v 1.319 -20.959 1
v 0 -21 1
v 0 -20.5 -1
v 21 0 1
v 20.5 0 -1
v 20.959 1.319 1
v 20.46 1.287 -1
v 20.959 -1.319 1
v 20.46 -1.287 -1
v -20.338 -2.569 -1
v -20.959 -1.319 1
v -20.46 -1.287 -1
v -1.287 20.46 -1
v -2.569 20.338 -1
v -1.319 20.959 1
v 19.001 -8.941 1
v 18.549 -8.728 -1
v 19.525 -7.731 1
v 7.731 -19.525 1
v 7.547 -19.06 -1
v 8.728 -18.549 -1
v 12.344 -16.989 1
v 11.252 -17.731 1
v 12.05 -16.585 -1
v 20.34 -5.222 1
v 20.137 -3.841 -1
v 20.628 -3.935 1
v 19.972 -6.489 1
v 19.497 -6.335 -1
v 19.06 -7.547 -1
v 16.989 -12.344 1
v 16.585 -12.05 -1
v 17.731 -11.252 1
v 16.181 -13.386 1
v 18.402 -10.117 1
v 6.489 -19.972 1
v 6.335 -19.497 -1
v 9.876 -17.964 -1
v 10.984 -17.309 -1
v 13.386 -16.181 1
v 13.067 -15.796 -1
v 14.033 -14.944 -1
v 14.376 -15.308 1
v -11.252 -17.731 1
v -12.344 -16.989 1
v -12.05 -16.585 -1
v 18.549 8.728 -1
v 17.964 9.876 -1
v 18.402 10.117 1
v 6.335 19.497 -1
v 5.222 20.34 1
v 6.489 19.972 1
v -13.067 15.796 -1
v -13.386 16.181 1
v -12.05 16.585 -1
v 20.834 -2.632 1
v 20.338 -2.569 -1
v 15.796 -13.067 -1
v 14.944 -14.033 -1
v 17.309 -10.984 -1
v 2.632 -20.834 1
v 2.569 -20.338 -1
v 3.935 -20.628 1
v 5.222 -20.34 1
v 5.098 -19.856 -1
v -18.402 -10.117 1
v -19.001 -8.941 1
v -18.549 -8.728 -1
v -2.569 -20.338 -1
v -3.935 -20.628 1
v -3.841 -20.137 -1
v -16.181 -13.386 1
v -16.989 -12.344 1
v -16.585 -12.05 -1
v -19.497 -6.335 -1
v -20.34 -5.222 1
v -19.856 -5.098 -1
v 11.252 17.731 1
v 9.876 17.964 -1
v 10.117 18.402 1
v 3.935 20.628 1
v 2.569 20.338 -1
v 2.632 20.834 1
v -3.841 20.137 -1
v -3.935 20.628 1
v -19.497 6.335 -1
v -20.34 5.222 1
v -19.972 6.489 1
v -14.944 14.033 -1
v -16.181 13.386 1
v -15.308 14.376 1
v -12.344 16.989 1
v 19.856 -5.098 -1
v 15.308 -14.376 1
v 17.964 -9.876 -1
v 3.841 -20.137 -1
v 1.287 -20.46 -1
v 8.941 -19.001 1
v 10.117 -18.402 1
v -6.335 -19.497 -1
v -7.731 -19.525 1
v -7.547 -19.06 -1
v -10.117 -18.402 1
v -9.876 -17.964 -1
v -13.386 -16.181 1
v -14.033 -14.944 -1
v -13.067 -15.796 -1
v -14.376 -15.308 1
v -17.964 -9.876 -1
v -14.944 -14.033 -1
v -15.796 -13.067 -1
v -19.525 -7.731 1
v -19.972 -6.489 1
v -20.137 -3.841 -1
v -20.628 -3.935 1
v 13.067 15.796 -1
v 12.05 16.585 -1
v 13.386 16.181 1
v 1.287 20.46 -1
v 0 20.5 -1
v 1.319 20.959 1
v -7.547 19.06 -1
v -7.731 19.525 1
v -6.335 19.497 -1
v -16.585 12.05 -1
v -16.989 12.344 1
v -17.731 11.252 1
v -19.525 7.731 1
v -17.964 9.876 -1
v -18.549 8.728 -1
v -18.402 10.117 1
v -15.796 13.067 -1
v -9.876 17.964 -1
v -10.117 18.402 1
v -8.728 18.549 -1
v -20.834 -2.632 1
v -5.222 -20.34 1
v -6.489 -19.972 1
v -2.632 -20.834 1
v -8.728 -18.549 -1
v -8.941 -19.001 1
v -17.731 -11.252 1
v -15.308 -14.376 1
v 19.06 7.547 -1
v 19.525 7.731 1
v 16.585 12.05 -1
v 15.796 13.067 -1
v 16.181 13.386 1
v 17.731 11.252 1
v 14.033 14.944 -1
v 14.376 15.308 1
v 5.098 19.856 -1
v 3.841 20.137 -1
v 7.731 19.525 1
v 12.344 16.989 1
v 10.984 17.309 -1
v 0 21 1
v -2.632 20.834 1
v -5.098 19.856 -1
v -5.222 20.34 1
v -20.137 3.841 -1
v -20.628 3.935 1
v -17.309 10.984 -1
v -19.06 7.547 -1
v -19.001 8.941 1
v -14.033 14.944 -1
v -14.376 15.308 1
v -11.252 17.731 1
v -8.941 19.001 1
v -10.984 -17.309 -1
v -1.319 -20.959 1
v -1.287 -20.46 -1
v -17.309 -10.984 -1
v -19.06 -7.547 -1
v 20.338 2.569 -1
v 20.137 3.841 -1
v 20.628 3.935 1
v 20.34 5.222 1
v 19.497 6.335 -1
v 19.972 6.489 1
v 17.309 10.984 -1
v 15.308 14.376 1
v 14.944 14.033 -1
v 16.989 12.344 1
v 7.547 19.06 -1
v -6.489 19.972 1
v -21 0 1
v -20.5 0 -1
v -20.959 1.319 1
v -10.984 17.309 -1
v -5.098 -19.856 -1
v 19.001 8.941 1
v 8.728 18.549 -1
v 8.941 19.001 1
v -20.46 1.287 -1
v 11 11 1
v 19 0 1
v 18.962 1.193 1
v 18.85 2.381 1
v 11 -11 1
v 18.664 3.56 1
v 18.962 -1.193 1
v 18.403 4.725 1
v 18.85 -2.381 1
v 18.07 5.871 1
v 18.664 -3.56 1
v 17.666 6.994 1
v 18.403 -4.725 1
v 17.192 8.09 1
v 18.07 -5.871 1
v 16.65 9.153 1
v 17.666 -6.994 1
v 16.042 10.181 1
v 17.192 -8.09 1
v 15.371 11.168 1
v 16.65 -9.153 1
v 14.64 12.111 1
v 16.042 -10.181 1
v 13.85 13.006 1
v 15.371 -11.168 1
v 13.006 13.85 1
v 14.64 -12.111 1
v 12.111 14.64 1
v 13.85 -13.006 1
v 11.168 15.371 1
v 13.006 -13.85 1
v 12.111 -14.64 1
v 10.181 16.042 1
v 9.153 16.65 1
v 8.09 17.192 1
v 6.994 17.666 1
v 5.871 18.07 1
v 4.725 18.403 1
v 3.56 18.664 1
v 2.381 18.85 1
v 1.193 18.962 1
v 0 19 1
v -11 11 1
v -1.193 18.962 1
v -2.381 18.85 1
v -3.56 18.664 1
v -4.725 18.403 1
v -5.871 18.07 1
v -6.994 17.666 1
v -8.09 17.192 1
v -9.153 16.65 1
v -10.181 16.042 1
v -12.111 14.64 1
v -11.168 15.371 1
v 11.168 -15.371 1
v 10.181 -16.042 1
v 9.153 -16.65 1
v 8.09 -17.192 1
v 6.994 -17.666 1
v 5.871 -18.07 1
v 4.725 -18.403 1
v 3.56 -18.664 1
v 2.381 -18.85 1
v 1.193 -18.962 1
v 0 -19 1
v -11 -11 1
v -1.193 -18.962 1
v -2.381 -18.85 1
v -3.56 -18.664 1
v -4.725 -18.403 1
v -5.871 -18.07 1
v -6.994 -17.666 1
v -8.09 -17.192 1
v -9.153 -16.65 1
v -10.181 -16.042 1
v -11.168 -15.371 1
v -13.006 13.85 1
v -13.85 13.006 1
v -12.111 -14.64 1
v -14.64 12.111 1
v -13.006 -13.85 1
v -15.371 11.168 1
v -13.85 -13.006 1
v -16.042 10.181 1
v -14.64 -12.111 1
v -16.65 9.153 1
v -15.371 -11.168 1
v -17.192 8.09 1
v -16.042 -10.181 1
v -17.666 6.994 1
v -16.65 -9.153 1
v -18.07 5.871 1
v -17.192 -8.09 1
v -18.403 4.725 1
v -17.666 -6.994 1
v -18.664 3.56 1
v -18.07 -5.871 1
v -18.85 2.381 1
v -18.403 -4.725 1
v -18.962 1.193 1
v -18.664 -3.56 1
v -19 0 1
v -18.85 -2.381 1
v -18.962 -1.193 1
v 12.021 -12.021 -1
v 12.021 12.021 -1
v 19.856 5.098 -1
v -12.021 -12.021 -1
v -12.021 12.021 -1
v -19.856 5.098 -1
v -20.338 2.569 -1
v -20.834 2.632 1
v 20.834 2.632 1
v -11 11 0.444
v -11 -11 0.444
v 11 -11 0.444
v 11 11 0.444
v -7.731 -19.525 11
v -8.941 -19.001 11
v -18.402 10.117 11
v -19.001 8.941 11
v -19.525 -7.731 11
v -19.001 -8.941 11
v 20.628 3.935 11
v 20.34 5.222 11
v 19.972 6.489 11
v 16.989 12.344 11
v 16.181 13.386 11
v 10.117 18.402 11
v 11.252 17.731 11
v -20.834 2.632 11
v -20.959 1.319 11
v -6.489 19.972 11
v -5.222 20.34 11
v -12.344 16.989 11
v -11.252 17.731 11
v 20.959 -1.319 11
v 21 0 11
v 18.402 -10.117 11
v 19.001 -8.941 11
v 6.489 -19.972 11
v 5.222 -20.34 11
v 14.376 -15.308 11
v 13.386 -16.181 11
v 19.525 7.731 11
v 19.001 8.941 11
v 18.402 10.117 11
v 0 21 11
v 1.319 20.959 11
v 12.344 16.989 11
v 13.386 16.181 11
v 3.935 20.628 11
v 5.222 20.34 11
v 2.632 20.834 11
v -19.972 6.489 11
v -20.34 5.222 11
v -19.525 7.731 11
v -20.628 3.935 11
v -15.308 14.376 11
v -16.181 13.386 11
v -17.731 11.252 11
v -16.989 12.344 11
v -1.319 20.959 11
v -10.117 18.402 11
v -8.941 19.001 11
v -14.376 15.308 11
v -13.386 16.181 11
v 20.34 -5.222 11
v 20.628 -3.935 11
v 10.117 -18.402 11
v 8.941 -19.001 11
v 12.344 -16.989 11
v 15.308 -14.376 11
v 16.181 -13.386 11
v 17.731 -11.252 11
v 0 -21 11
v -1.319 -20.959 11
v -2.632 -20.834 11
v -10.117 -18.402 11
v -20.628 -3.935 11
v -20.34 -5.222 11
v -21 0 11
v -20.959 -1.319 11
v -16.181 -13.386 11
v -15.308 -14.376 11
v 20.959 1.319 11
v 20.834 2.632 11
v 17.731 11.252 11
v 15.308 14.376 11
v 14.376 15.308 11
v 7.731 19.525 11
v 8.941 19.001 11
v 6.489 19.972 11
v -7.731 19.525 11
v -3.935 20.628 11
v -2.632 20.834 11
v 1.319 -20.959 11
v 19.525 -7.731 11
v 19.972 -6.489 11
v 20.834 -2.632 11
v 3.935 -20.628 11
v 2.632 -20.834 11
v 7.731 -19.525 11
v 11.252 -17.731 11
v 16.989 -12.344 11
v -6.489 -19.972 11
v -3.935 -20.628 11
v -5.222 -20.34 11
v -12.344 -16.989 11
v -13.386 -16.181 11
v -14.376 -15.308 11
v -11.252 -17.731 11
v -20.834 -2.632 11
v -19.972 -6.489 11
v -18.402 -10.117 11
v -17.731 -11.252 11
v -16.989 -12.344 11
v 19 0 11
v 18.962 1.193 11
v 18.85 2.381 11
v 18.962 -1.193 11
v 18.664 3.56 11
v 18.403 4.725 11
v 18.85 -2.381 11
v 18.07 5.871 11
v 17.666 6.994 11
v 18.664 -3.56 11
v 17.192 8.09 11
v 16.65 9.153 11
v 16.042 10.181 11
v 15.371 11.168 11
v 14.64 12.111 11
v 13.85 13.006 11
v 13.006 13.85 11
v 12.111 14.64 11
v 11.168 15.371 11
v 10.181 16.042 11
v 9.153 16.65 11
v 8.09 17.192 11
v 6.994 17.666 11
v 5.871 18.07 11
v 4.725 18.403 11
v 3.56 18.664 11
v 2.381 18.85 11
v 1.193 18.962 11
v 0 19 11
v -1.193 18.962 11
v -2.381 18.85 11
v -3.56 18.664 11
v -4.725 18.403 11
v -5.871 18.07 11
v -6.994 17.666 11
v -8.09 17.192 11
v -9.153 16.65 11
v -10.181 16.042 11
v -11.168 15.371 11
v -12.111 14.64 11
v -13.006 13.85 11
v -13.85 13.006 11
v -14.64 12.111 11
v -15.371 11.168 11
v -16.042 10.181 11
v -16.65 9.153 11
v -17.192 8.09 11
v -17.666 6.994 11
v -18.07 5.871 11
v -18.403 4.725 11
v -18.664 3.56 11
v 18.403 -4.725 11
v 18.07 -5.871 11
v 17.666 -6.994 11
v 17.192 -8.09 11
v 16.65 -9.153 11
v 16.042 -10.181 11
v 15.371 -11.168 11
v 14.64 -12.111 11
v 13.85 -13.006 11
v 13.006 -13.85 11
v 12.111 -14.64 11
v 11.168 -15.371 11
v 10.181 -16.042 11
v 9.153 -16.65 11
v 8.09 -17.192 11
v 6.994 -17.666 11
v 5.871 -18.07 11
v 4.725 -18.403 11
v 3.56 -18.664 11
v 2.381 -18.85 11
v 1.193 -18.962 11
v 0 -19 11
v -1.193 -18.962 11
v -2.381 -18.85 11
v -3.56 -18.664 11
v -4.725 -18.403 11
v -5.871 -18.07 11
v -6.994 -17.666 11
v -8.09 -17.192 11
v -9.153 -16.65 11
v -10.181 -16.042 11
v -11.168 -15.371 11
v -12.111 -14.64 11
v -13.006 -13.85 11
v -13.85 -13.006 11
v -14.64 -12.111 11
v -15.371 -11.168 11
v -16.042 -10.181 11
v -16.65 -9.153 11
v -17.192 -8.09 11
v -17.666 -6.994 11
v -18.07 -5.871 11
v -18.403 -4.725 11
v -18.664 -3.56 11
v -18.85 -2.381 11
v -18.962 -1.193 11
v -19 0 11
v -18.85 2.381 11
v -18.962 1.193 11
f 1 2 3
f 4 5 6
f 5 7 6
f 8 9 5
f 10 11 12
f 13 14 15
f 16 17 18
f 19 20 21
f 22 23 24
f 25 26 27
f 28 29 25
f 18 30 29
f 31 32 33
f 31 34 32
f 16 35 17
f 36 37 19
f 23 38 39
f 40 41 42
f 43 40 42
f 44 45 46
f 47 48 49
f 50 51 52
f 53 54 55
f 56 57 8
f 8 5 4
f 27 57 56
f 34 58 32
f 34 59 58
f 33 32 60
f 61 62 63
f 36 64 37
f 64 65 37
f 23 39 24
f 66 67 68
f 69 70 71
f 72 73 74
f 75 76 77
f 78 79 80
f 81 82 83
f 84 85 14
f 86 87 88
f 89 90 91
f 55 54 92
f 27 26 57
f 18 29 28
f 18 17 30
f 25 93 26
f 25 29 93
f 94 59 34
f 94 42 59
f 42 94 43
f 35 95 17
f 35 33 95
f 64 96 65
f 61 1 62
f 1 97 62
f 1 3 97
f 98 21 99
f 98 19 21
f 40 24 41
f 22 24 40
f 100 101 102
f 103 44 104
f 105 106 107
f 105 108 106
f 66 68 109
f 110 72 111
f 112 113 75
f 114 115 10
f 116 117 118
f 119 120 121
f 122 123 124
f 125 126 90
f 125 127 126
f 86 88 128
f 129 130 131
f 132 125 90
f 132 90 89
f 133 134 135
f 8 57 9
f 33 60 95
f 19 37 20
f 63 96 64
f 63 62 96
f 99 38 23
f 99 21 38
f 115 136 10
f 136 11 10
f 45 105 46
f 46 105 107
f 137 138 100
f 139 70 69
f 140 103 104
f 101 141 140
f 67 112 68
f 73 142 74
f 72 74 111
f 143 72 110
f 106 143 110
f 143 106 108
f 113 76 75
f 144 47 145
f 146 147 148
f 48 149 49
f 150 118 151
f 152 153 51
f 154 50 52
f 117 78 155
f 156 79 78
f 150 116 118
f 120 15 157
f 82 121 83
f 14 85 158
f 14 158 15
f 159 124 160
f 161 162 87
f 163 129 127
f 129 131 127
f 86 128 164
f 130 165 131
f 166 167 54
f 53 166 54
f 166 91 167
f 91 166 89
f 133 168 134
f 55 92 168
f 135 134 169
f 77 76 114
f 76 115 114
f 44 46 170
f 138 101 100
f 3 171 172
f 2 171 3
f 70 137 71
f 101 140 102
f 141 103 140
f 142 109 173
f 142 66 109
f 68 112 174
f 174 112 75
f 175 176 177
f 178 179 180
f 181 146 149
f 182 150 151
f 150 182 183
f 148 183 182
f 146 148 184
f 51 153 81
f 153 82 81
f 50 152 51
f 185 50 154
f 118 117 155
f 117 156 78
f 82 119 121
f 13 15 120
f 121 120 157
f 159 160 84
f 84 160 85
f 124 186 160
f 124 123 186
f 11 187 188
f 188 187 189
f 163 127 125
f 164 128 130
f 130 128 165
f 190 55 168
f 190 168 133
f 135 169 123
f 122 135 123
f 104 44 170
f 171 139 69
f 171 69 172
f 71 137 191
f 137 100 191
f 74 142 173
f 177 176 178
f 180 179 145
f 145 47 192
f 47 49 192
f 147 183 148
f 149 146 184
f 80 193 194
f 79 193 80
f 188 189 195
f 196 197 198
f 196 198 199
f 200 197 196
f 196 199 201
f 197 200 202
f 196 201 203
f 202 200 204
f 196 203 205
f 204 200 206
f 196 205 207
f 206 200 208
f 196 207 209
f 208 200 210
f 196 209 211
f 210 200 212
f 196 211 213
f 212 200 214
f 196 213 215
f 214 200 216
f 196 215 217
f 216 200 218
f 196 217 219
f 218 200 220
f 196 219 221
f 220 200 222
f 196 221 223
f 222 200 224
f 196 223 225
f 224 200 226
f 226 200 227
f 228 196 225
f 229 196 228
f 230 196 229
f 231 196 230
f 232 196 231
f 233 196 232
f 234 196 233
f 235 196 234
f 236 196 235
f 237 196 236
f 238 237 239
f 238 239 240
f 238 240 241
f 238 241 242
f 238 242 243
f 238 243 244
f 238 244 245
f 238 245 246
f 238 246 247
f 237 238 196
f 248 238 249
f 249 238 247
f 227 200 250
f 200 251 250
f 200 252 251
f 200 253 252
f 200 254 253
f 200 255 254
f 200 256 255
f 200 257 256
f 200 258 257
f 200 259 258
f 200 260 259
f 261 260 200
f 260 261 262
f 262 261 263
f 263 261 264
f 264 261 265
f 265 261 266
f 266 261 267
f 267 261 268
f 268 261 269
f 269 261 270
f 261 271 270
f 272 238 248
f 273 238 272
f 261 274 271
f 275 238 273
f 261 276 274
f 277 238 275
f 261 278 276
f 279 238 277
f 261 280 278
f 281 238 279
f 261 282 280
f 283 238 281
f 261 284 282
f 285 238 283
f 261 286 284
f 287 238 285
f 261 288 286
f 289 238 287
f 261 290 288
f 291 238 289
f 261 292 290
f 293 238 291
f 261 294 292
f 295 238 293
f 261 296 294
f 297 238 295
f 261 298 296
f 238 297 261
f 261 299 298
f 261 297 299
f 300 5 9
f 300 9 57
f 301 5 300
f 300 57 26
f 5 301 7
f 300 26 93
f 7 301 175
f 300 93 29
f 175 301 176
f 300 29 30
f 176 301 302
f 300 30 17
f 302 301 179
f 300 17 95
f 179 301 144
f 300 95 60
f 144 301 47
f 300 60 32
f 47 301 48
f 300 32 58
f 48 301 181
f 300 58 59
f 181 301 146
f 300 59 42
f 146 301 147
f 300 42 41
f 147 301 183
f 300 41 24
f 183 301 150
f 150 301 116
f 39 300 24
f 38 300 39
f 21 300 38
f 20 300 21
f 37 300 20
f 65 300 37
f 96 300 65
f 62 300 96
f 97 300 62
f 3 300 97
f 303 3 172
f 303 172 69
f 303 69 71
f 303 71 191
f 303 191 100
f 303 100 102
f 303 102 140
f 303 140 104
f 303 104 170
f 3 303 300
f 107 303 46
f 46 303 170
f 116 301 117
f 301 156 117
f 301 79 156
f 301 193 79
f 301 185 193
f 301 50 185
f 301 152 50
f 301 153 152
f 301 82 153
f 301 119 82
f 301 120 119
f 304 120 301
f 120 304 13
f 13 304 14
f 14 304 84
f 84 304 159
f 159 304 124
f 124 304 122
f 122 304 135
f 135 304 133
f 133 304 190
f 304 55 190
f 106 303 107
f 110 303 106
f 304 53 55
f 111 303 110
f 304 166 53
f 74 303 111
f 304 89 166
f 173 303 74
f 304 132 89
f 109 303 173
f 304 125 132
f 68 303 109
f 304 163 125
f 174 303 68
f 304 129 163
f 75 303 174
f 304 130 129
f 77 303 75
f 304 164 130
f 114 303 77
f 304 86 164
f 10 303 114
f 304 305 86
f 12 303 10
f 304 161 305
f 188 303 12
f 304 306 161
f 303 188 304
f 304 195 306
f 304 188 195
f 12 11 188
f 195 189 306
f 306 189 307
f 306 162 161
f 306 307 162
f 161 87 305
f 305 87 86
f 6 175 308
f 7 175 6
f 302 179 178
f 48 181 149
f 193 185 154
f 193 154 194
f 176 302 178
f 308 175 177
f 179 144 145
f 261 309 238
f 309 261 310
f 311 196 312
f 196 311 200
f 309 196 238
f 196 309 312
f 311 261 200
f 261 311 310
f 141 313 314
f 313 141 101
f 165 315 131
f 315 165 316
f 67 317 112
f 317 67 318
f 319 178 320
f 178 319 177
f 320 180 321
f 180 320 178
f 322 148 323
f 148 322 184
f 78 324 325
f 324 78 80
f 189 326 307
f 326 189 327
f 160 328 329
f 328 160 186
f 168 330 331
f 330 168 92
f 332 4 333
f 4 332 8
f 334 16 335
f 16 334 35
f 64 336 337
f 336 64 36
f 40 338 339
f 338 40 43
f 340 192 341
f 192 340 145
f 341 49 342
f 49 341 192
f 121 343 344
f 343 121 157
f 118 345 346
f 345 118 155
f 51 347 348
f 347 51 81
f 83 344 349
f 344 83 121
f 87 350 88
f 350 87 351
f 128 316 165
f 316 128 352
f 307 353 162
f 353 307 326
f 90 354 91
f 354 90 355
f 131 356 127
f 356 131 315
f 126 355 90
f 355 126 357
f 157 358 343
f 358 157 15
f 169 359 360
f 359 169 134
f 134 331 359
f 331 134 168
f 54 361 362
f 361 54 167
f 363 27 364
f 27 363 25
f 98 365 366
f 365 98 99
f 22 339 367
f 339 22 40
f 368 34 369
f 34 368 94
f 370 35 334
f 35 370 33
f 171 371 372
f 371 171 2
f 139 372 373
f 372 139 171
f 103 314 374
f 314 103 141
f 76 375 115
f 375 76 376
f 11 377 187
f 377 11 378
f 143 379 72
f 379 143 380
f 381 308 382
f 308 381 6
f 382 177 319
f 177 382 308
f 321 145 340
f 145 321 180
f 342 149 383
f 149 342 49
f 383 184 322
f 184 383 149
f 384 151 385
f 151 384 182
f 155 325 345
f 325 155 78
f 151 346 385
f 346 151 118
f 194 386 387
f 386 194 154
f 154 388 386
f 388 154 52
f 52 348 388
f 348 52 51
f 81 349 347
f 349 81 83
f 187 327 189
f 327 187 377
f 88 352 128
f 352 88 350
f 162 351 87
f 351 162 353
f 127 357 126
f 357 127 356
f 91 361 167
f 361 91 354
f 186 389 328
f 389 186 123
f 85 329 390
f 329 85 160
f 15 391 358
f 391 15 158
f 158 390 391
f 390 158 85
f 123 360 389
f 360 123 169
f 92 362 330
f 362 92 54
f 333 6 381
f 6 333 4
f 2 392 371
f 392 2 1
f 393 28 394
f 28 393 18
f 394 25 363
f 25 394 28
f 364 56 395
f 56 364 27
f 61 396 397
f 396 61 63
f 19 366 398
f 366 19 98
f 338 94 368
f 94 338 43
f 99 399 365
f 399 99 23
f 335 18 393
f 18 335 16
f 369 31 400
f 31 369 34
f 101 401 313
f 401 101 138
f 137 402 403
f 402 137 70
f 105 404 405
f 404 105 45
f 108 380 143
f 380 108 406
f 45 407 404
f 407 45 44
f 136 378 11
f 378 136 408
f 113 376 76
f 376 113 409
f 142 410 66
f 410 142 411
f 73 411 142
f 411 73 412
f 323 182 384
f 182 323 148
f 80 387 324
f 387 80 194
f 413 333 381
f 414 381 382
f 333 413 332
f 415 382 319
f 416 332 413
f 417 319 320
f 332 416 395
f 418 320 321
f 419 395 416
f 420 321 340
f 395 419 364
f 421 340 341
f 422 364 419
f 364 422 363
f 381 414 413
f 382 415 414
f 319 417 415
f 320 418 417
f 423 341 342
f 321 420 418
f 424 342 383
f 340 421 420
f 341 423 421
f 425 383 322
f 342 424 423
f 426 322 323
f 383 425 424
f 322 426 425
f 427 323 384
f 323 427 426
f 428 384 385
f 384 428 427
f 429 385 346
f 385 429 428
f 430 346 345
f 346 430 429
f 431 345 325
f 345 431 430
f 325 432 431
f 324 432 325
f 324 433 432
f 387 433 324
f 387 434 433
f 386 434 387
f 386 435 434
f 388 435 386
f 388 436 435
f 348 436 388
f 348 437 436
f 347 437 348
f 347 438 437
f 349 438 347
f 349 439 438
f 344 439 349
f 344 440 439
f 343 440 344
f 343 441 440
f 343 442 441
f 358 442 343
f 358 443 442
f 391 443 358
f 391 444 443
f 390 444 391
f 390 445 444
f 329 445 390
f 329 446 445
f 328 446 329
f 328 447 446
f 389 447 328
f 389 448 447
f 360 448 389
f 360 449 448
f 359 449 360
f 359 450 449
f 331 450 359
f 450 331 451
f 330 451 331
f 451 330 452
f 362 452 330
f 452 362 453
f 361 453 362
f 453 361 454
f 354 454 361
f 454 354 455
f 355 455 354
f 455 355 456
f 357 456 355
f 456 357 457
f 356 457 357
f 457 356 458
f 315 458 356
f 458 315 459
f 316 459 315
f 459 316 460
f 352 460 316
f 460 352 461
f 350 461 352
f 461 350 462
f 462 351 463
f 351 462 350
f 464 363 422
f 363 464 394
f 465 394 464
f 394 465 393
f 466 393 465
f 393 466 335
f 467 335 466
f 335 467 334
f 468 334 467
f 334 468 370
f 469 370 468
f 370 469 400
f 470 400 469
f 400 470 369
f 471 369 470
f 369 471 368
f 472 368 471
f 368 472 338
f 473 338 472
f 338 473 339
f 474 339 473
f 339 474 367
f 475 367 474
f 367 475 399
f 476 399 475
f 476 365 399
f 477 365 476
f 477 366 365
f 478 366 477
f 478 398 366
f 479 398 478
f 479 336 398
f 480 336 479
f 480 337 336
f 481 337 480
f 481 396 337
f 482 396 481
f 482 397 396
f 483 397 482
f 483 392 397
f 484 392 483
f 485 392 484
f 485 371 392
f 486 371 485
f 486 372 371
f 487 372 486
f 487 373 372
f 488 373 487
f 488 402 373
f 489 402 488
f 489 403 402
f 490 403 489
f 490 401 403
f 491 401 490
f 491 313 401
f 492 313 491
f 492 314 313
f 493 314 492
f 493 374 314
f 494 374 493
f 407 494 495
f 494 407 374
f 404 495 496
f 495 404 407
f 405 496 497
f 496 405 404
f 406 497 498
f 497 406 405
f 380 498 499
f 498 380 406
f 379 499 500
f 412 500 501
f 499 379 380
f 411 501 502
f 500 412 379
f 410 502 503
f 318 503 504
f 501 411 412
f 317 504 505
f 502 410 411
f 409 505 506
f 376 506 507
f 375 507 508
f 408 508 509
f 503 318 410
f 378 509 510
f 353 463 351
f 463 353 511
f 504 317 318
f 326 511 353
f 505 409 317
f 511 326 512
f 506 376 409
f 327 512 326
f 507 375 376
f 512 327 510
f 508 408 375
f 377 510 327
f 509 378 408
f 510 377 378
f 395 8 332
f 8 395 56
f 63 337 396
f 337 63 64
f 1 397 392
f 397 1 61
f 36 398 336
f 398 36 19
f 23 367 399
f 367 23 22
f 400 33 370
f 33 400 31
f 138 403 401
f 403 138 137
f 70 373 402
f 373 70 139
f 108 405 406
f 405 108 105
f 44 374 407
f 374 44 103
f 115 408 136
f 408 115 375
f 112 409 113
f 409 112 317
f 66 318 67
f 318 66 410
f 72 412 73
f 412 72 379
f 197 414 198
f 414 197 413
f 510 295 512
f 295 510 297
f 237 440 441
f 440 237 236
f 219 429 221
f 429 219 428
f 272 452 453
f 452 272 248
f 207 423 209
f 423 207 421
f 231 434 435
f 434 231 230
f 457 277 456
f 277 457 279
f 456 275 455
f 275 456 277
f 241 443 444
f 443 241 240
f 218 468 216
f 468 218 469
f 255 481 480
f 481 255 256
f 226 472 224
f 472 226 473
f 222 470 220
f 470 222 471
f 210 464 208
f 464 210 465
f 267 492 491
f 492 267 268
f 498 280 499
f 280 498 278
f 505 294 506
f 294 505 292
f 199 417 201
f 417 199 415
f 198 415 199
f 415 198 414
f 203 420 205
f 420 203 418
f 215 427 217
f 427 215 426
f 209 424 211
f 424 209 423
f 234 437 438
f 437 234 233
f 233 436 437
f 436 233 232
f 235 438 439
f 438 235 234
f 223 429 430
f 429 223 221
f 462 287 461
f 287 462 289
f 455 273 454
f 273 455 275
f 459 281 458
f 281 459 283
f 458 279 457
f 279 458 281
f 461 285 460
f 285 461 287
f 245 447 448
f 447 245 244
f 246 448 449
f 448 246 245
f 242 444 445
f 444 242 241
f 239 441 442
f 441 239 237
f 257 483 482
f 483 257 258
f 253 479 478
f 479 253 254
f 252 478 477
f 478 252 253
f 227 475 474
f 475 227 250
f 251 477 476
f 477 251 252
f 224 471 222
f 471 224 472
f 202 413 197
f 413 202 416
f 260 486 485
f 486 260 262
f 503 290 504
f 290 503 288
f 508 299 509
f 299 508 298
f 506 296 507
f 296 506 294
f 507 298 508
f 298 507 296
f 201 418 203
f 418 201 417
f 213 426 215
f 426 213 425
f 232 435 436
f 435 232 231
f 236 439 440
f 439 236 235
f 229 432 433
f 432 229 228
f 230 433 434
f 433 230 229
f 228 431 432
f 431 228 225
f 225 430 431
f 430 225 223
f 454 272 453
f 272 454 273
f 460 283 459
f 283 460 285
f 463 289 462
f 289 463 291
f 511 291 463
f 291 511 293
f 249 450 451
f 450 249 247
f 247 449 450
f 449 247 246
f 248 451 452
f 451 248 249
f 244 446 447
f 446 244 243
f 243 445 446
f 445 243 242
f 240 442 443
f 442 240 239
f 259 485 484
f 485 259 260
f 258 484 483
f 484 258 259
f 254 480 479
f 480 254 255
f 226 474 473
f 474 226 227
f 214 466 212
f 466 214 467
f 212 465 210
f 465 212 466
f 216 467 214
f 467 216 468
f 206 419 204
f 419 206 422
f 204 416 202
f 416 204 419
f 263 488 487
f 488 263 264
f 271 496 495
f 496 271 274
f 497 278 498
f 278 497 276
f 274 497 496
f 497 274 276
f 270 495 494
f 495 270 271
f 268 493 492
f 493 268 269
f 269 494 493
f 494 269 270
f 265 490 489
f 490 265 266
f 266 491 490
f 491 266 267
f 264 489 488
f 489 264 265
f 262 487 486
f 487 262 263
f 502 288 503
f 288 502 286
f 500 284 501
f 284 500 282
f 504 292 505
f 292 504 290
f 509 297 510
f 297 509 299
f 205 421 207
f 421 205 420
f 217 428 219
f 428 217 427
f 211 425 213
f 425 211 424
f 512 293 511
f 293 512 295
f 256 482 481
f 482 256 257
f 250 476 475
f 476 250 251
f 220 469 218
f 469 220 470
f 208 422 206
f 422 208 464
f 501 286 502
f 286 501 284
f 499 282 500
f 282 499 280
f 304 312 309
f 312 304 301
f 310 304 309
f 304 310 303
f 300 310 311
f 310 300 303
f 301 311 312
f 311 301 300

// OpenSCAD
// a first pass at suspending a small 1" rockwool plug over a milkjug for
// kratky style growing.

// NOTE: The tolerances are off and there isn't quite enough stability to the plug
// a roughed in possible method of stabilization:
%difference(){
    translate([0, 0, 5])cube([25, 25, 10], center=true);
    cube([21, 21, 22], center=true);
}

difference(){
    union(){
        difference(){
            // slightly chamfered top (-Z) face of cylinder
            cylinder(2, d1=41, d2=42, center=true, $fn=100);
            // cutout for rockwool cube
            cube([22, 22, 10], center=true);
        }
        // vertical hollow cylinder to fit around mouth of milk jug
        translate([0, 0, 1]){
            difference(){
                cylinder(10, d1=42, d2=42, $fn=100);
                cylinder(12, d1=38, d2=38, $fn=100);
            }
        }
    }
    // chamfer top (-Z) square hole
    translate([0, 0, -14])rotate([0, 0, 45])cylinder(30, 30, 0, $fn=4);
}
